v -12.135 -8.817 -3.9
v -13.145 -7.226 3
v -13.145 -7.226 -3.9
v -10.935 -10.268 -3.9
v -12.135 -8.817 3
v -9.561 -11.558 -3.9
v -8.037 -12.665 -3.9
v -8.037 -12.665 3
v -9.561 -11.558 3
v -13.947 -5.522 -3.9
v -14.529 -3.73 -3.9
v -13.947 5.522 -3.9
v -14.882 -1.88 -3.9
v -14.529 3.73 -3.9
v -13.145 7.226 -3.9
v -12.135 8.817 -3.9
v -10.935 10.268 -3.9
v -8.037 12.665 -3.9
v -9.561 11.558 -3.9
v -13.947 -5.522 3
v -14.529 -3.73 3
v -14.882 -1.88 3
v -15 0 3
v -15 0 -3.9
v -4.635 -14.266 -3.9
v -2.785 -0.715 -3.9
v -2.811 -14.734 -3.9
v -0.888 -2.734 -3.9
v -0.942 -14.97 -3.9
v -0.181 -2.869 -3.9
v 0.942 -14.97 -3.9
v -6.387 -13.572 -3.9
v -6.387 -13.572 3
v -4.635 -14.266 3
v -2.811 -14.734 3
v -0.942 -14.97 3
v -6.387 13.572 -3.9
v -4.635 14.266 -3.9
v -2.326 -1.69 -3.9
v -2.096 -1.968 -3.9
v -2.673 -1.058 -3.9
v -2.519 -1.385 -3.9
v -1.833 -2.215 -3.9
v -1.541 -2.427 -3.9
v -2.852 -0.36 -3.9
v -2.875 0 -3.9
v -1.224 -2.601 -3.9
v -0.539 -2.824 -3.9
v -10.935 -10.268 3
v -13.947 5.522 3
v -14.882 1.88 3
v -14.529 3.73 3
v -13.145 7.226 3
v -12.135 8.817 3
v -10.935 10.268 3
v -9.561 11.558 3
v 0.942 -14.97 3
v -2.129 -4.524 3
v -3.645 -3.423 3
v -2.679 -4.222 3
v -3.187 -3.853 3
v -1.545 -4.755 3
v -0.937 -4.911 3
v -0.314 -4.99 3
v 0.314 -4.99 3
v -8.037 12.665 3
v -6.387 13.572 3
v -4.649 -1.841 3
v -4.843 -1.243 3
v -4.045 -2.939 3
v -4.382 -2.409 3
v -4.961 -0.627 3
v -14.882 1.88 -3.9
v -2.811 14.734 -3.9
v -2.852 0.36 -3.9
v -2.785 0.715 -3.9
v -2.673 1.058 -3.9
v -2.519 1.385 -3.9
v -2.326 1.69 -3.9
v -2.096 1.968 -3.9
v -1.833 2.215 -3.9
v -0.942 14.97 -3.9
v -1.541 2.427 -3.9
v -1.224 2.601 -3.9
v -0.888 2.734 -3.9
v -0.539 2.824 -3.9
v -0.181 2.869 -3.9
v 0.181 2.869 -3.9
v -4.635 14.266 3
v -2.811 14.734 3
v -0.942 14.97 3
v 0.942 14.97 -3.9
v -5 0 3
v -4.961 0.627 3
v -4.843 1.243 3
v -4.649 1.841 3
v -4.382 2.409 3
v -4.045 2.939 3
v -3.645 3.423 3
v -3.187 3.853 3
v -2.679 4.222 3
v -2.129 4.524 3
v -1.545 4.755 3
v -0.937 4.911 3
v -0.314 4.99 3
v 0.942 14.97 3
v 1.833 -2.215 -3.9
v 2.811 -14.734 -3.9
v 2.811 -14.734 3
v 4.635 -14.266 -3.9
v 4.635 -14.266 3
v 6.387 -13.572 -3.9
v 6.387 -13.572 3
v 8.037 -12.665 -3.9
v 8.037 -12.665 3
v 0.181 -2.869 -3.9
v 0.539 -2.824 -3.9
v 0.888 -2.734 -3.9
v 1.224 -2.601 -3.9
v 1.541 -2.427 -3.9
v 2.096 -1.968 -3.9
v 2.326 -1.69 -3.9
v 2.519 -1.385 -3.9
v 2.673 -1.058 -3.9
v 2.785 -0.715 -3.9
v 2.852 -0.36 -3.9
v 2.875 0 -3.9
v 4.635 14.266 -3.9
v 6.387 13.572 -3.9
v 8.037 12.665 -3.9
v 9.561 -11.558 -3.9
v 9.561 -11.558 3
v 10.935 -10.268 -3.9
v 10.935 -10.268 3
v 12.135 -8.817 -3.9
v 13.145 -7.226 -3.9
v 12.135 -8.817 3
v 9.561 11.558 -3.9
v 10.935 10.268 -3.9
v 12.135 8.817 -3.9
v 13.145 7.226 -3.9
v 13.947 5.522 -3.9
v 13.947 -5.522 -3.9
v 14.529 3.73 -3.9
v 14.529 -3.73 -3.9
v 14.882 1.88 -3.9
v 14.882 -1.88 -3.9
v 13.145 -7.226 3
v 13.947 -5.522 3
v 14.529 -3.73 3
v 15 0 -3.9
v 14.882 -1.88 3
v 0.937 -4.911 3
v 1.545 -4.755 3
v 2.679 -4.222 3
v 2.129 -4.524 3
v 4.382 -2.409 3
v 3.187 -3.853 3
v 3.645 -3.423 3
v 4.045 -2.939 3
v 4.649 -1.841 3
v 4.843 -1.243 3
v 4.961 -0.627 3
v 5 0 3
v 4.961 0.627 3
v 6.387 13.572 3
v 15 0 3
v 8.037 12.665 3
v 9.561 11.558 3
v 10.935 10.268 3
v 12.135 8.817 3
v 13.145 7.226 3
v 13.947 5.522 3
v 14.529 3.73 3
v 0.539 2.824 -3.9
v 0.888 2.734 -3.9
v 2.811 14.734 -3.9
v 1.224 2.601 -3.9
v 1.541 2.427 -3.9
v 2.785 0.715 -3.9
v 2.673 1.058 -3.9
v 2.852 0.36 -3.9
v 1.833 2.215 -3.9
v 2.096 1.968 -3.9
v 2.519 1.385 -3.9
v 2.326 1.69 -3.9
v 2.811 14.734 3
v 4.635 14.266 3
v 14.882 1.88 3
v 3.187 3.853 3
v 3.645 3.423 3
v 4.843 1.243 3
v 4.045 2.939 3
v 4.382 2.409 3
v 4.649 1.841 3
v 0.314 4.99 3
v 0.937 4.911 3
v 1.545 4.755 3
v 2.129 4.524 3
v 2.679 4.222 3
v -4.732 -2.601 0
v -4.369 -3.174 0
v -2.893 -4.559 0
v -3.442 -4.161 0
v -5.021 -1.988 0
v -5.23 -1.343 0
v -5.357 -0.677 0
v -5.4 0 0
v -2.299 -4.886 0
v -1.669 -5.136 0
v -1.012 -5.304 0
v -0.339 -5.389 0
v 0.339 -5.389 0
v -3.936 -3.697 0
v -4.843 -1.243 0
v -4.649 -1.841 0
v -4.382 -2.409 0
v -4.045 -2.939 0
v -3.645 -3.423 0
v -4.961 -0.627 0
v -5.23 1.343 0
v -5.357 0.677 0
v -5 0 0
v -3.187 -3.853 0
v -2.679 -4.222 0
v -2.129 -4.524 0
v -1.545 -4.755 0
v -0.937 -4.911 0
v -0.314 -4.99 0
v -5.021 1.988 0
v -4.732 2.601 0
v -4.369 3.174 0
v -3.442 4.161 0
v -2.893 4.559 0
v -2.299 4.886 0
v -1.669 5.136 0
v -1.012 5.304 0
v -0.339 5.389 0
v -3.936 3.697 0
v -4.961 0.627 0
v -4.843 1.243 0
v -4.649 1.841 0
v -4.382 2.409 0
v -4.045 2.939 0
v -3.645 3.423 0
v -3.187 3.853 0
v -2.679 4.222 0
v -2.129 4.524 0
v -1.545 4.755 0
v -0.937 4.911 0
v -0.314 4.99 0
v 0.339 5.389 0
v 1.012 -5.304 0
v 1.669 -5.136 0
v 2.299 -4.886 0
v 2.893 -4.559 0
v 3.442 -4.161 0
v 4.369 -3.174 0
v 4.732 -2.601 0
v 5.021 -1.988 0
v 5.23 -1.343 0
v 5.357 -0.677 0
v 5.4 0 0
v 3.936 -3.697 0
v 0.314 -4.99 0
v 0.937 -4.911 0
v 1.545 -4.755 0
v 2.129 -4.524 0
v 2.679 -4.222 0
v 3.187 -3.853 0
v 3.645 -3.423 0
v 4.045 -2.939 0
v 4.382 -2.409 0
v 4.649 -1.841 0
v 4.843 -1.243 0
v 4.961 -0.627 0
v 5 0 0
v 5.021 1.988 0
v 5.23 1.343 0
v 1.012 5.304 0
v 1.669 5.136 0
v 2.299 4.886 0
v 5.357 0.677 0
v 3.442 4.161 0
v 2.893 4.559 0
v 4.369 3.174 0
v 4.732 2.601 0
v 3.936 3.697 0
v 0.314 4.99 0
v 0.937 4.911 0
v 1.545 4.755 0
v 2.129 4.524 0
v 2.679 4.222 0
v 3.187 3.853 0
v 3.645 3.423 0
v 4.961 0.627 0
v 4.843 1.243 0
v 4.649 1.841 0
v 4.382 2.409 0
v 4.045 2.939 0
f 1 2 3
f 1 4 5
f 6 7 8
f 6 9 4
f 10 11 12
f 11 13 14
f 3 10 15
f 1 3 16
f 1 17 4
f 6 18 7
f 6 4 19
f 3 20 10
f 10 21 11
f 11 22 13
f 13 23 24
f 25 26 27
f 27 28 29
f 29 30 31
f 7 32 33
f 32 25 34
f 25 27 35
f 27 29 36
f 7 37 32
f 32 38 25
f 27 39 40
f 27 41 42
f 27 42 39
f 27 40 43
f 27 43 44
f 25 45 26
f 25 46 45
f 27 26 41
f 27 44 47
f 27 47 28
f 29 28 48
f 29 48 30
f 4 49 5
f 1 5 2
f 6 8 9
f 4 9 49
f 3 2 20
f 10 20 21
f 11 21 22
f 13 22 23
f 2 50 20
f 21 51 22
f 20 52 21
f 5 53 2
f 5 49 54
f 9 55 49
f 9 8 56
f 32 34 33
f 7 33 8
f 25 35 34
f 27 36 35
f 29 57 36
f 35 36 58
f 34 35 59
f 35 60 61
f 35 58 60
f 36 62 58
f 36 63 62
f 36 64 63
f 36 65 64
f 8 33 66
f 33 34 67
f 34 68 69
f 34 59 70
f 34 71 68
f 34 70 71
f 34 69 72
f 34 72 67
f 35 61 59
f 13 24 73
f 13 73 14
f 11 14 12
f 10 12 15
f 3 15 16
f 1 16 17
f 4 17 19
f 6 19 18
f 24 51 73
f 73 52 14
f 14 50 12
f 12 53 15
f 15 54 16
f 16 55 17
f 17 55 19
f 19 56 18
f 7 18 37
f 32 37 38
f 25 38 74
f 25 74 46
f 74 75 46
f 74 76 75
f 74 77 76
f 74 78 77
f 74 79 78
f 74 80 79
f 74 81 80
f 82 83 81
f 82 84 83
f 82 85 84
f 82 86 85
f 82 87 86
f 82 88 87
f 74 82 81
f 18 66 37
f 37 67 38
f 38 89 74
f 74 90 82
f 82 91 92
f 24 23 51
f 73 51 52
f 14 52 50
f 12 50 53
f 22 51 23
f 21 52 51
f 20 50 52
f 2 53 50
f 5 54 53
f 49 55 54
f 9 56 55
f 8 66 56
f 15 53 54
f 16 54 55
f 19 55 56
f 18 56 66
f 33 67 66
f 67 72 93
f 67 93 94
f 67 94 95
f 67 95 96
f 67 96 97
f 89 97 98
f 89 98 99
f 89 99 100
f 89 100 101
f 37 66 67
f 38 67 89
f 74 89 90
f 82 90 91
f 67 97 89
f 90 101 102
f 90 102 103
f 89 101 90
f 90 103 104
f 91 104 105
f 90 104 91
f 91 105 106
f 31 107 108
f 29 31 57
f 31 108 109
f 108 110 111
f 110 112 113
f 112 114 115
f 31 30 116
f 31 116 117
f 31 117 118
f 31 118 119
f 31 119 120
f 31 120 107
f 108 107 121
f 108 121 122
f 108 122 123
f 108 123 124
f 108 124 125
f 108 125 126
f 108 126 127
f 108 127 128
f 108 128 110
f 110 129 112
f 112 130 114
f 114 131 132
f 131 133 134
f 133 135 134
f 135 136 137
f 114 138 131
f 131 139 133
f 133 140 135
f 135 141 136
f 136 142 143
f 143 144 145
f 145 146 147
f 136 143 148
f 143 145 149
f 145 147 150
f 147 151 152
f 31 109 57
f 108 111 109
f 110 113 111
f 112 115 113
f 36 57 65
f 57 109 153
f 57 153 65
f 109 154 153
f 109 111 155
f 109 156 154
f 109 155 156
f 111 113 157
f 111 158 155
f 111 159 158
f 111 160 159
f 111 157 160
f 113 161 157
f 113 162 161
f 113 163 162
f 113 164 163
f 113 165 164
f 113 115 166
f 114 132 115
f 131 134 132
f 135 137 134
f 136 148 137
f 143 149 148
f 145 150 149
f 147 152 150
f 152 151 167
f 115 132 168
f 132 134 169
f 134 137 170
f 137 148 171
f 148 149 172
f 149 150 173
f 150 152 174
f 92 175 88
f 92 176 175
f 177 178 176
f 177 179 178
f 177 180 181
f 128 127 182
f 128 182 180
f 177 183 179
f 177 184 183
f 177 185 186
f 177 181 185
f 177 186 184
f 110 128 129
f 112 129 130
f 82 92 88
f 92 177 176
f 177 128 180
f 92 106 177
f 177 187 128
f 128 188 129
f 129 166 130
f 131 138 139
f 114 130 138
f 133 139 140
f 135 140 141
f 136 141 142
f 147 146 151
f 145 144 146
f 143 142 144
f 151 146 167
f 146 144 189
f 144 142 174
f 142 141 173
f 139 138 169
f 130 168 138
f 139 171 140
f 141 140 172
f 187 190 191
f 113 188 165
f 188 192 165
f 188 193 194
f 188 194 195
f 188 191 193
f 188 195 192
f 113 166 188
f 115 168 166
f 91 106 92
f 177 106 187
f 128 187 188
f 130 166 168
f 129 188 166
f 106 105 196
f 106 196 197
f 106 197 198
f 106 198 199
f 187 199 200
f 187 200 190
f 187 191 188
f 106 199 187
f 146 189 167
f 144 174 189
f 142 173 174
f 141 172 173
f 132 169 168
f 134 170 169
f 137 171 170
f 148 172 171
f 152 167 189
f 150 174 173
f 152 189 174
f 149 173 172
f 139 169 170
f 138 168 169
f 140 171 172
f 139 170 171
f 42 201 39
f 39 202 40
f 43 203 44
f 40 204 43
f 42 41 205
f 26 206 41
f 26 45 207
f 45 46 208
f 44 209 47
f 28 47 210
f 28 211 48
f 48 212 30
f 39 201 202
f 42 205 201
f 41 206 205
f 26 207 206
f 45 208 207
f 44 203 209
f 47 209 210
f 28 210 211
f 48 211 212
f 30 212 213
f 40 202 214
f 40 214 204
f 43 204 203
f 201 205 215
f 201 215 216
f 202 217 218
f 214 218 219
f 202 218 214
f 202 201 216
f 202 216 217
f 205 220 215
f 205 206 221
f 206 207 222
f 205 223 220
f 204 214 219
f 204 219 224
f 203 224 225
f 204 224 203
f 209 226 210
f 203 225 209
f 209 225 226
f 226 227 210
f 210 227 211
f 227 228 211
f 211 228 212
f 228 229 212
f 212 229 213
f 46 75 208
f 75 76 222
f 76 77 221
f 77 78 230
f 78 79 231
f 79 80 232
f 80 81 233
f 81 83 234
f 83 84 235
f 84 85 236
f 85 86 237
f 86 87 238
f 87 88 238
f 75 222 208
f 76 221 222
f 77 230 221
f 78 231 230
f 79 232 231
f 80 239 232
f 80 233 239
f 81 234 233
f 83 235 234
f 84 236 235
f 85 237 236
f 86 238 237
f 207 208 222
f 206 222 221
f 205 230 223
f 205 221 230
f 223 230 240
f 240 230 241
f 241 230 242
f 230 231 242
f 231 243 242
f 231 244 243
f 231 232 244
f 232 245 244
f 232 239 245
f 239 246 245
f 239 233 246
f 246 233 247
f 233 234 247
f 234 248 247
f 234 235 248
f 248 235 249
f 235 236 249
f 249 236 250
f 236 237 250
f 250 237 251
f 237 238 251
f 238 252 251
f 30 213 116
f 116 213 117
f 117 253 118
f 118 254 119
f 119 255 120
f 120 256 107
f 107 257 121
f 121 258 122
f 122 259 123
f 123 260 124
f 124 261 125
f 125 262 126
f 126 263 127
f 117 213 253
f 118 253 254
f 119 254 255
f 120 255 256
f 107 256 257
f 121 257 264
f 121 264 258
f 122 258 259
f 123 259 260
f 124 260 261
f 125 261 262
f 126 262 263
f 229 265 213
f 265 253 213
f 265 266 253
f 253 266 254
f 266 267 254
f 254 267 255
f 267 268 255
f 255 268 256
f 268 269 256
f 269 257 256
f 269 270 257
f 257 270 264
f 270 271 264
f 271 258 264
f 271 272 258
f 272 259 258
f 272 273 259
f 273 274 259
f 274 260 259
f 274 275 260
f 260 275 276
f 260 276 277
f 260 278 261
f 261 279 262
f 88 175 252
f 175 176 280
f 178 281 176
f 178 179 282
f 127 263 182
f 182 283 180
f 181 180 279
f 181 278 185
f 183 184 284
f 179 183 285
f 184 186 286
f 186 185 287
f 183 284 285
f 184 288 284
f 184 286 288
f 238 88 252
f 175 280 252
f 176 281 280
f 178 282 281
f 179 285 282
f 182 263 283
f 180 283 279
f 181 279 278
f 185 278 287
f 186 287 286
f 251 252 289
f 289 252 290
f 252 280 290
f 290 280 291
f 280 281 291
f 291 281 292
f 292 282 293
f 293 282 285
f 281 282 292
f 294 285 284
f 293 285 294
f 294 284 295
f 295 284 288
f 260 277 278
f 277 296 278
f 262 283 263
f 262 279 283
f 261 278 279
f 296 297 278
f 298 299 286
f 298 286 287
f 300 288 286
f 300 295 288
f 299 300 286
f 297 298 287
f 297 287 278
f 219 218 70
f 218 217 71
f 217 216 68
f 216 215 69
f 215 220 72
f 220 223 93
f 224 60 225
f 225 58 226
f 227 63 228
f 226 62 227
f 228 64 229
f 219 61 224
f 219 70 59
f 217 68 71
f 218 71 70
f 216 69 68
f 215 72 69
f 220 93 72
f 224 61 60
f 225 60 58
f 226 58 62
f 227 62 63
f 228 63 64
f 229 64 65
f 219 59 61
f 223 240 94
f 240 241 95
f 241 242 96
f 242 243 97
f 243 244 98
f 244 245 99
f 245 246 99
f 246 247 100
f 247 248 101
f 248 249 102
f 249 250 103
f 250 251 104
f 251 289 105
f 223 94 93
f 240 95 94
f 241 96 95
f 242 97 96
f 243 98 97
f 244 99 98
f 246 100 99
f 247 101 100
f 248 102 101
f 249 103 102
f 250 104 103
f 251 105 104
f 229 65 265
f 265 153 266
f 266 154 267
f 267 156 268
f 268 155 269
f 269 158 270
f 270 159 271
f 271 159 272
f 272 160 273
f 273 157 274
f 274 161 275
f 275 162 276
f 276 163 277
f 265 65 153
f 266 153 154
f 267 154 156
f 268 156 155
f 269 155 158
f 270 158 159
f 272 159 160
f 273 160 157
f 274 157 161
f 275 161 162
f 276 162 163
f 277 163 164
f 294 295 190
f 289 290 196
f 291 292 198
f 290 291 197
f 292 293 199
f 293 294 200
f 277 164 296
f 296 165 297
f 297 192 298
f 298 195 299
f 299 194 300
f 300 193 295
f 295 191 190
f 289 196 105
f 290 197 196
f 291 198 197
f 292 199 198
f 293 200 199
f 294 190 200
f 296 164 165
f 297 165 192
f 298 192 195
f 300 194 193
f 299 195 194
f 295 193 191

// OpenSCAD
$fn = 50;

difference() {
	union() {
		translate(v = [0, 0, -3.9000000000000004]) {
			cylinder(h = 6.9, r = 15.0);
		}
		#translate(v = [0, 0, -6.9]) {
			cylinder(h = 6.9, r = 2.875);
		}
	}
	union() {
		translate(v = [0, 0, 0]) {
			rotate(a = [0, 0, 0]) {
				difference() {
					union() {
						translate(v = [0, 0, -6.9]) {
							cylinder(h = 6.9, r = 2.6);
						}
						translate(v = [0, 0, -3.9]) {
							cylinder(h = 3.9, r1 = 2.875, r2 = 5.4);
						}
						translate(v = [0, 0, -6.9]) {
							cylinder(h = 6.9, r = 2.875);
						}
						translate(v = [0, 0, -6.9]) {
							cylinder(h = 6.9, r = 2.6);
						}
					}
					union();
				}
			}
		}
		#cylinder(h = 3, r = 5.0);
	}
}
